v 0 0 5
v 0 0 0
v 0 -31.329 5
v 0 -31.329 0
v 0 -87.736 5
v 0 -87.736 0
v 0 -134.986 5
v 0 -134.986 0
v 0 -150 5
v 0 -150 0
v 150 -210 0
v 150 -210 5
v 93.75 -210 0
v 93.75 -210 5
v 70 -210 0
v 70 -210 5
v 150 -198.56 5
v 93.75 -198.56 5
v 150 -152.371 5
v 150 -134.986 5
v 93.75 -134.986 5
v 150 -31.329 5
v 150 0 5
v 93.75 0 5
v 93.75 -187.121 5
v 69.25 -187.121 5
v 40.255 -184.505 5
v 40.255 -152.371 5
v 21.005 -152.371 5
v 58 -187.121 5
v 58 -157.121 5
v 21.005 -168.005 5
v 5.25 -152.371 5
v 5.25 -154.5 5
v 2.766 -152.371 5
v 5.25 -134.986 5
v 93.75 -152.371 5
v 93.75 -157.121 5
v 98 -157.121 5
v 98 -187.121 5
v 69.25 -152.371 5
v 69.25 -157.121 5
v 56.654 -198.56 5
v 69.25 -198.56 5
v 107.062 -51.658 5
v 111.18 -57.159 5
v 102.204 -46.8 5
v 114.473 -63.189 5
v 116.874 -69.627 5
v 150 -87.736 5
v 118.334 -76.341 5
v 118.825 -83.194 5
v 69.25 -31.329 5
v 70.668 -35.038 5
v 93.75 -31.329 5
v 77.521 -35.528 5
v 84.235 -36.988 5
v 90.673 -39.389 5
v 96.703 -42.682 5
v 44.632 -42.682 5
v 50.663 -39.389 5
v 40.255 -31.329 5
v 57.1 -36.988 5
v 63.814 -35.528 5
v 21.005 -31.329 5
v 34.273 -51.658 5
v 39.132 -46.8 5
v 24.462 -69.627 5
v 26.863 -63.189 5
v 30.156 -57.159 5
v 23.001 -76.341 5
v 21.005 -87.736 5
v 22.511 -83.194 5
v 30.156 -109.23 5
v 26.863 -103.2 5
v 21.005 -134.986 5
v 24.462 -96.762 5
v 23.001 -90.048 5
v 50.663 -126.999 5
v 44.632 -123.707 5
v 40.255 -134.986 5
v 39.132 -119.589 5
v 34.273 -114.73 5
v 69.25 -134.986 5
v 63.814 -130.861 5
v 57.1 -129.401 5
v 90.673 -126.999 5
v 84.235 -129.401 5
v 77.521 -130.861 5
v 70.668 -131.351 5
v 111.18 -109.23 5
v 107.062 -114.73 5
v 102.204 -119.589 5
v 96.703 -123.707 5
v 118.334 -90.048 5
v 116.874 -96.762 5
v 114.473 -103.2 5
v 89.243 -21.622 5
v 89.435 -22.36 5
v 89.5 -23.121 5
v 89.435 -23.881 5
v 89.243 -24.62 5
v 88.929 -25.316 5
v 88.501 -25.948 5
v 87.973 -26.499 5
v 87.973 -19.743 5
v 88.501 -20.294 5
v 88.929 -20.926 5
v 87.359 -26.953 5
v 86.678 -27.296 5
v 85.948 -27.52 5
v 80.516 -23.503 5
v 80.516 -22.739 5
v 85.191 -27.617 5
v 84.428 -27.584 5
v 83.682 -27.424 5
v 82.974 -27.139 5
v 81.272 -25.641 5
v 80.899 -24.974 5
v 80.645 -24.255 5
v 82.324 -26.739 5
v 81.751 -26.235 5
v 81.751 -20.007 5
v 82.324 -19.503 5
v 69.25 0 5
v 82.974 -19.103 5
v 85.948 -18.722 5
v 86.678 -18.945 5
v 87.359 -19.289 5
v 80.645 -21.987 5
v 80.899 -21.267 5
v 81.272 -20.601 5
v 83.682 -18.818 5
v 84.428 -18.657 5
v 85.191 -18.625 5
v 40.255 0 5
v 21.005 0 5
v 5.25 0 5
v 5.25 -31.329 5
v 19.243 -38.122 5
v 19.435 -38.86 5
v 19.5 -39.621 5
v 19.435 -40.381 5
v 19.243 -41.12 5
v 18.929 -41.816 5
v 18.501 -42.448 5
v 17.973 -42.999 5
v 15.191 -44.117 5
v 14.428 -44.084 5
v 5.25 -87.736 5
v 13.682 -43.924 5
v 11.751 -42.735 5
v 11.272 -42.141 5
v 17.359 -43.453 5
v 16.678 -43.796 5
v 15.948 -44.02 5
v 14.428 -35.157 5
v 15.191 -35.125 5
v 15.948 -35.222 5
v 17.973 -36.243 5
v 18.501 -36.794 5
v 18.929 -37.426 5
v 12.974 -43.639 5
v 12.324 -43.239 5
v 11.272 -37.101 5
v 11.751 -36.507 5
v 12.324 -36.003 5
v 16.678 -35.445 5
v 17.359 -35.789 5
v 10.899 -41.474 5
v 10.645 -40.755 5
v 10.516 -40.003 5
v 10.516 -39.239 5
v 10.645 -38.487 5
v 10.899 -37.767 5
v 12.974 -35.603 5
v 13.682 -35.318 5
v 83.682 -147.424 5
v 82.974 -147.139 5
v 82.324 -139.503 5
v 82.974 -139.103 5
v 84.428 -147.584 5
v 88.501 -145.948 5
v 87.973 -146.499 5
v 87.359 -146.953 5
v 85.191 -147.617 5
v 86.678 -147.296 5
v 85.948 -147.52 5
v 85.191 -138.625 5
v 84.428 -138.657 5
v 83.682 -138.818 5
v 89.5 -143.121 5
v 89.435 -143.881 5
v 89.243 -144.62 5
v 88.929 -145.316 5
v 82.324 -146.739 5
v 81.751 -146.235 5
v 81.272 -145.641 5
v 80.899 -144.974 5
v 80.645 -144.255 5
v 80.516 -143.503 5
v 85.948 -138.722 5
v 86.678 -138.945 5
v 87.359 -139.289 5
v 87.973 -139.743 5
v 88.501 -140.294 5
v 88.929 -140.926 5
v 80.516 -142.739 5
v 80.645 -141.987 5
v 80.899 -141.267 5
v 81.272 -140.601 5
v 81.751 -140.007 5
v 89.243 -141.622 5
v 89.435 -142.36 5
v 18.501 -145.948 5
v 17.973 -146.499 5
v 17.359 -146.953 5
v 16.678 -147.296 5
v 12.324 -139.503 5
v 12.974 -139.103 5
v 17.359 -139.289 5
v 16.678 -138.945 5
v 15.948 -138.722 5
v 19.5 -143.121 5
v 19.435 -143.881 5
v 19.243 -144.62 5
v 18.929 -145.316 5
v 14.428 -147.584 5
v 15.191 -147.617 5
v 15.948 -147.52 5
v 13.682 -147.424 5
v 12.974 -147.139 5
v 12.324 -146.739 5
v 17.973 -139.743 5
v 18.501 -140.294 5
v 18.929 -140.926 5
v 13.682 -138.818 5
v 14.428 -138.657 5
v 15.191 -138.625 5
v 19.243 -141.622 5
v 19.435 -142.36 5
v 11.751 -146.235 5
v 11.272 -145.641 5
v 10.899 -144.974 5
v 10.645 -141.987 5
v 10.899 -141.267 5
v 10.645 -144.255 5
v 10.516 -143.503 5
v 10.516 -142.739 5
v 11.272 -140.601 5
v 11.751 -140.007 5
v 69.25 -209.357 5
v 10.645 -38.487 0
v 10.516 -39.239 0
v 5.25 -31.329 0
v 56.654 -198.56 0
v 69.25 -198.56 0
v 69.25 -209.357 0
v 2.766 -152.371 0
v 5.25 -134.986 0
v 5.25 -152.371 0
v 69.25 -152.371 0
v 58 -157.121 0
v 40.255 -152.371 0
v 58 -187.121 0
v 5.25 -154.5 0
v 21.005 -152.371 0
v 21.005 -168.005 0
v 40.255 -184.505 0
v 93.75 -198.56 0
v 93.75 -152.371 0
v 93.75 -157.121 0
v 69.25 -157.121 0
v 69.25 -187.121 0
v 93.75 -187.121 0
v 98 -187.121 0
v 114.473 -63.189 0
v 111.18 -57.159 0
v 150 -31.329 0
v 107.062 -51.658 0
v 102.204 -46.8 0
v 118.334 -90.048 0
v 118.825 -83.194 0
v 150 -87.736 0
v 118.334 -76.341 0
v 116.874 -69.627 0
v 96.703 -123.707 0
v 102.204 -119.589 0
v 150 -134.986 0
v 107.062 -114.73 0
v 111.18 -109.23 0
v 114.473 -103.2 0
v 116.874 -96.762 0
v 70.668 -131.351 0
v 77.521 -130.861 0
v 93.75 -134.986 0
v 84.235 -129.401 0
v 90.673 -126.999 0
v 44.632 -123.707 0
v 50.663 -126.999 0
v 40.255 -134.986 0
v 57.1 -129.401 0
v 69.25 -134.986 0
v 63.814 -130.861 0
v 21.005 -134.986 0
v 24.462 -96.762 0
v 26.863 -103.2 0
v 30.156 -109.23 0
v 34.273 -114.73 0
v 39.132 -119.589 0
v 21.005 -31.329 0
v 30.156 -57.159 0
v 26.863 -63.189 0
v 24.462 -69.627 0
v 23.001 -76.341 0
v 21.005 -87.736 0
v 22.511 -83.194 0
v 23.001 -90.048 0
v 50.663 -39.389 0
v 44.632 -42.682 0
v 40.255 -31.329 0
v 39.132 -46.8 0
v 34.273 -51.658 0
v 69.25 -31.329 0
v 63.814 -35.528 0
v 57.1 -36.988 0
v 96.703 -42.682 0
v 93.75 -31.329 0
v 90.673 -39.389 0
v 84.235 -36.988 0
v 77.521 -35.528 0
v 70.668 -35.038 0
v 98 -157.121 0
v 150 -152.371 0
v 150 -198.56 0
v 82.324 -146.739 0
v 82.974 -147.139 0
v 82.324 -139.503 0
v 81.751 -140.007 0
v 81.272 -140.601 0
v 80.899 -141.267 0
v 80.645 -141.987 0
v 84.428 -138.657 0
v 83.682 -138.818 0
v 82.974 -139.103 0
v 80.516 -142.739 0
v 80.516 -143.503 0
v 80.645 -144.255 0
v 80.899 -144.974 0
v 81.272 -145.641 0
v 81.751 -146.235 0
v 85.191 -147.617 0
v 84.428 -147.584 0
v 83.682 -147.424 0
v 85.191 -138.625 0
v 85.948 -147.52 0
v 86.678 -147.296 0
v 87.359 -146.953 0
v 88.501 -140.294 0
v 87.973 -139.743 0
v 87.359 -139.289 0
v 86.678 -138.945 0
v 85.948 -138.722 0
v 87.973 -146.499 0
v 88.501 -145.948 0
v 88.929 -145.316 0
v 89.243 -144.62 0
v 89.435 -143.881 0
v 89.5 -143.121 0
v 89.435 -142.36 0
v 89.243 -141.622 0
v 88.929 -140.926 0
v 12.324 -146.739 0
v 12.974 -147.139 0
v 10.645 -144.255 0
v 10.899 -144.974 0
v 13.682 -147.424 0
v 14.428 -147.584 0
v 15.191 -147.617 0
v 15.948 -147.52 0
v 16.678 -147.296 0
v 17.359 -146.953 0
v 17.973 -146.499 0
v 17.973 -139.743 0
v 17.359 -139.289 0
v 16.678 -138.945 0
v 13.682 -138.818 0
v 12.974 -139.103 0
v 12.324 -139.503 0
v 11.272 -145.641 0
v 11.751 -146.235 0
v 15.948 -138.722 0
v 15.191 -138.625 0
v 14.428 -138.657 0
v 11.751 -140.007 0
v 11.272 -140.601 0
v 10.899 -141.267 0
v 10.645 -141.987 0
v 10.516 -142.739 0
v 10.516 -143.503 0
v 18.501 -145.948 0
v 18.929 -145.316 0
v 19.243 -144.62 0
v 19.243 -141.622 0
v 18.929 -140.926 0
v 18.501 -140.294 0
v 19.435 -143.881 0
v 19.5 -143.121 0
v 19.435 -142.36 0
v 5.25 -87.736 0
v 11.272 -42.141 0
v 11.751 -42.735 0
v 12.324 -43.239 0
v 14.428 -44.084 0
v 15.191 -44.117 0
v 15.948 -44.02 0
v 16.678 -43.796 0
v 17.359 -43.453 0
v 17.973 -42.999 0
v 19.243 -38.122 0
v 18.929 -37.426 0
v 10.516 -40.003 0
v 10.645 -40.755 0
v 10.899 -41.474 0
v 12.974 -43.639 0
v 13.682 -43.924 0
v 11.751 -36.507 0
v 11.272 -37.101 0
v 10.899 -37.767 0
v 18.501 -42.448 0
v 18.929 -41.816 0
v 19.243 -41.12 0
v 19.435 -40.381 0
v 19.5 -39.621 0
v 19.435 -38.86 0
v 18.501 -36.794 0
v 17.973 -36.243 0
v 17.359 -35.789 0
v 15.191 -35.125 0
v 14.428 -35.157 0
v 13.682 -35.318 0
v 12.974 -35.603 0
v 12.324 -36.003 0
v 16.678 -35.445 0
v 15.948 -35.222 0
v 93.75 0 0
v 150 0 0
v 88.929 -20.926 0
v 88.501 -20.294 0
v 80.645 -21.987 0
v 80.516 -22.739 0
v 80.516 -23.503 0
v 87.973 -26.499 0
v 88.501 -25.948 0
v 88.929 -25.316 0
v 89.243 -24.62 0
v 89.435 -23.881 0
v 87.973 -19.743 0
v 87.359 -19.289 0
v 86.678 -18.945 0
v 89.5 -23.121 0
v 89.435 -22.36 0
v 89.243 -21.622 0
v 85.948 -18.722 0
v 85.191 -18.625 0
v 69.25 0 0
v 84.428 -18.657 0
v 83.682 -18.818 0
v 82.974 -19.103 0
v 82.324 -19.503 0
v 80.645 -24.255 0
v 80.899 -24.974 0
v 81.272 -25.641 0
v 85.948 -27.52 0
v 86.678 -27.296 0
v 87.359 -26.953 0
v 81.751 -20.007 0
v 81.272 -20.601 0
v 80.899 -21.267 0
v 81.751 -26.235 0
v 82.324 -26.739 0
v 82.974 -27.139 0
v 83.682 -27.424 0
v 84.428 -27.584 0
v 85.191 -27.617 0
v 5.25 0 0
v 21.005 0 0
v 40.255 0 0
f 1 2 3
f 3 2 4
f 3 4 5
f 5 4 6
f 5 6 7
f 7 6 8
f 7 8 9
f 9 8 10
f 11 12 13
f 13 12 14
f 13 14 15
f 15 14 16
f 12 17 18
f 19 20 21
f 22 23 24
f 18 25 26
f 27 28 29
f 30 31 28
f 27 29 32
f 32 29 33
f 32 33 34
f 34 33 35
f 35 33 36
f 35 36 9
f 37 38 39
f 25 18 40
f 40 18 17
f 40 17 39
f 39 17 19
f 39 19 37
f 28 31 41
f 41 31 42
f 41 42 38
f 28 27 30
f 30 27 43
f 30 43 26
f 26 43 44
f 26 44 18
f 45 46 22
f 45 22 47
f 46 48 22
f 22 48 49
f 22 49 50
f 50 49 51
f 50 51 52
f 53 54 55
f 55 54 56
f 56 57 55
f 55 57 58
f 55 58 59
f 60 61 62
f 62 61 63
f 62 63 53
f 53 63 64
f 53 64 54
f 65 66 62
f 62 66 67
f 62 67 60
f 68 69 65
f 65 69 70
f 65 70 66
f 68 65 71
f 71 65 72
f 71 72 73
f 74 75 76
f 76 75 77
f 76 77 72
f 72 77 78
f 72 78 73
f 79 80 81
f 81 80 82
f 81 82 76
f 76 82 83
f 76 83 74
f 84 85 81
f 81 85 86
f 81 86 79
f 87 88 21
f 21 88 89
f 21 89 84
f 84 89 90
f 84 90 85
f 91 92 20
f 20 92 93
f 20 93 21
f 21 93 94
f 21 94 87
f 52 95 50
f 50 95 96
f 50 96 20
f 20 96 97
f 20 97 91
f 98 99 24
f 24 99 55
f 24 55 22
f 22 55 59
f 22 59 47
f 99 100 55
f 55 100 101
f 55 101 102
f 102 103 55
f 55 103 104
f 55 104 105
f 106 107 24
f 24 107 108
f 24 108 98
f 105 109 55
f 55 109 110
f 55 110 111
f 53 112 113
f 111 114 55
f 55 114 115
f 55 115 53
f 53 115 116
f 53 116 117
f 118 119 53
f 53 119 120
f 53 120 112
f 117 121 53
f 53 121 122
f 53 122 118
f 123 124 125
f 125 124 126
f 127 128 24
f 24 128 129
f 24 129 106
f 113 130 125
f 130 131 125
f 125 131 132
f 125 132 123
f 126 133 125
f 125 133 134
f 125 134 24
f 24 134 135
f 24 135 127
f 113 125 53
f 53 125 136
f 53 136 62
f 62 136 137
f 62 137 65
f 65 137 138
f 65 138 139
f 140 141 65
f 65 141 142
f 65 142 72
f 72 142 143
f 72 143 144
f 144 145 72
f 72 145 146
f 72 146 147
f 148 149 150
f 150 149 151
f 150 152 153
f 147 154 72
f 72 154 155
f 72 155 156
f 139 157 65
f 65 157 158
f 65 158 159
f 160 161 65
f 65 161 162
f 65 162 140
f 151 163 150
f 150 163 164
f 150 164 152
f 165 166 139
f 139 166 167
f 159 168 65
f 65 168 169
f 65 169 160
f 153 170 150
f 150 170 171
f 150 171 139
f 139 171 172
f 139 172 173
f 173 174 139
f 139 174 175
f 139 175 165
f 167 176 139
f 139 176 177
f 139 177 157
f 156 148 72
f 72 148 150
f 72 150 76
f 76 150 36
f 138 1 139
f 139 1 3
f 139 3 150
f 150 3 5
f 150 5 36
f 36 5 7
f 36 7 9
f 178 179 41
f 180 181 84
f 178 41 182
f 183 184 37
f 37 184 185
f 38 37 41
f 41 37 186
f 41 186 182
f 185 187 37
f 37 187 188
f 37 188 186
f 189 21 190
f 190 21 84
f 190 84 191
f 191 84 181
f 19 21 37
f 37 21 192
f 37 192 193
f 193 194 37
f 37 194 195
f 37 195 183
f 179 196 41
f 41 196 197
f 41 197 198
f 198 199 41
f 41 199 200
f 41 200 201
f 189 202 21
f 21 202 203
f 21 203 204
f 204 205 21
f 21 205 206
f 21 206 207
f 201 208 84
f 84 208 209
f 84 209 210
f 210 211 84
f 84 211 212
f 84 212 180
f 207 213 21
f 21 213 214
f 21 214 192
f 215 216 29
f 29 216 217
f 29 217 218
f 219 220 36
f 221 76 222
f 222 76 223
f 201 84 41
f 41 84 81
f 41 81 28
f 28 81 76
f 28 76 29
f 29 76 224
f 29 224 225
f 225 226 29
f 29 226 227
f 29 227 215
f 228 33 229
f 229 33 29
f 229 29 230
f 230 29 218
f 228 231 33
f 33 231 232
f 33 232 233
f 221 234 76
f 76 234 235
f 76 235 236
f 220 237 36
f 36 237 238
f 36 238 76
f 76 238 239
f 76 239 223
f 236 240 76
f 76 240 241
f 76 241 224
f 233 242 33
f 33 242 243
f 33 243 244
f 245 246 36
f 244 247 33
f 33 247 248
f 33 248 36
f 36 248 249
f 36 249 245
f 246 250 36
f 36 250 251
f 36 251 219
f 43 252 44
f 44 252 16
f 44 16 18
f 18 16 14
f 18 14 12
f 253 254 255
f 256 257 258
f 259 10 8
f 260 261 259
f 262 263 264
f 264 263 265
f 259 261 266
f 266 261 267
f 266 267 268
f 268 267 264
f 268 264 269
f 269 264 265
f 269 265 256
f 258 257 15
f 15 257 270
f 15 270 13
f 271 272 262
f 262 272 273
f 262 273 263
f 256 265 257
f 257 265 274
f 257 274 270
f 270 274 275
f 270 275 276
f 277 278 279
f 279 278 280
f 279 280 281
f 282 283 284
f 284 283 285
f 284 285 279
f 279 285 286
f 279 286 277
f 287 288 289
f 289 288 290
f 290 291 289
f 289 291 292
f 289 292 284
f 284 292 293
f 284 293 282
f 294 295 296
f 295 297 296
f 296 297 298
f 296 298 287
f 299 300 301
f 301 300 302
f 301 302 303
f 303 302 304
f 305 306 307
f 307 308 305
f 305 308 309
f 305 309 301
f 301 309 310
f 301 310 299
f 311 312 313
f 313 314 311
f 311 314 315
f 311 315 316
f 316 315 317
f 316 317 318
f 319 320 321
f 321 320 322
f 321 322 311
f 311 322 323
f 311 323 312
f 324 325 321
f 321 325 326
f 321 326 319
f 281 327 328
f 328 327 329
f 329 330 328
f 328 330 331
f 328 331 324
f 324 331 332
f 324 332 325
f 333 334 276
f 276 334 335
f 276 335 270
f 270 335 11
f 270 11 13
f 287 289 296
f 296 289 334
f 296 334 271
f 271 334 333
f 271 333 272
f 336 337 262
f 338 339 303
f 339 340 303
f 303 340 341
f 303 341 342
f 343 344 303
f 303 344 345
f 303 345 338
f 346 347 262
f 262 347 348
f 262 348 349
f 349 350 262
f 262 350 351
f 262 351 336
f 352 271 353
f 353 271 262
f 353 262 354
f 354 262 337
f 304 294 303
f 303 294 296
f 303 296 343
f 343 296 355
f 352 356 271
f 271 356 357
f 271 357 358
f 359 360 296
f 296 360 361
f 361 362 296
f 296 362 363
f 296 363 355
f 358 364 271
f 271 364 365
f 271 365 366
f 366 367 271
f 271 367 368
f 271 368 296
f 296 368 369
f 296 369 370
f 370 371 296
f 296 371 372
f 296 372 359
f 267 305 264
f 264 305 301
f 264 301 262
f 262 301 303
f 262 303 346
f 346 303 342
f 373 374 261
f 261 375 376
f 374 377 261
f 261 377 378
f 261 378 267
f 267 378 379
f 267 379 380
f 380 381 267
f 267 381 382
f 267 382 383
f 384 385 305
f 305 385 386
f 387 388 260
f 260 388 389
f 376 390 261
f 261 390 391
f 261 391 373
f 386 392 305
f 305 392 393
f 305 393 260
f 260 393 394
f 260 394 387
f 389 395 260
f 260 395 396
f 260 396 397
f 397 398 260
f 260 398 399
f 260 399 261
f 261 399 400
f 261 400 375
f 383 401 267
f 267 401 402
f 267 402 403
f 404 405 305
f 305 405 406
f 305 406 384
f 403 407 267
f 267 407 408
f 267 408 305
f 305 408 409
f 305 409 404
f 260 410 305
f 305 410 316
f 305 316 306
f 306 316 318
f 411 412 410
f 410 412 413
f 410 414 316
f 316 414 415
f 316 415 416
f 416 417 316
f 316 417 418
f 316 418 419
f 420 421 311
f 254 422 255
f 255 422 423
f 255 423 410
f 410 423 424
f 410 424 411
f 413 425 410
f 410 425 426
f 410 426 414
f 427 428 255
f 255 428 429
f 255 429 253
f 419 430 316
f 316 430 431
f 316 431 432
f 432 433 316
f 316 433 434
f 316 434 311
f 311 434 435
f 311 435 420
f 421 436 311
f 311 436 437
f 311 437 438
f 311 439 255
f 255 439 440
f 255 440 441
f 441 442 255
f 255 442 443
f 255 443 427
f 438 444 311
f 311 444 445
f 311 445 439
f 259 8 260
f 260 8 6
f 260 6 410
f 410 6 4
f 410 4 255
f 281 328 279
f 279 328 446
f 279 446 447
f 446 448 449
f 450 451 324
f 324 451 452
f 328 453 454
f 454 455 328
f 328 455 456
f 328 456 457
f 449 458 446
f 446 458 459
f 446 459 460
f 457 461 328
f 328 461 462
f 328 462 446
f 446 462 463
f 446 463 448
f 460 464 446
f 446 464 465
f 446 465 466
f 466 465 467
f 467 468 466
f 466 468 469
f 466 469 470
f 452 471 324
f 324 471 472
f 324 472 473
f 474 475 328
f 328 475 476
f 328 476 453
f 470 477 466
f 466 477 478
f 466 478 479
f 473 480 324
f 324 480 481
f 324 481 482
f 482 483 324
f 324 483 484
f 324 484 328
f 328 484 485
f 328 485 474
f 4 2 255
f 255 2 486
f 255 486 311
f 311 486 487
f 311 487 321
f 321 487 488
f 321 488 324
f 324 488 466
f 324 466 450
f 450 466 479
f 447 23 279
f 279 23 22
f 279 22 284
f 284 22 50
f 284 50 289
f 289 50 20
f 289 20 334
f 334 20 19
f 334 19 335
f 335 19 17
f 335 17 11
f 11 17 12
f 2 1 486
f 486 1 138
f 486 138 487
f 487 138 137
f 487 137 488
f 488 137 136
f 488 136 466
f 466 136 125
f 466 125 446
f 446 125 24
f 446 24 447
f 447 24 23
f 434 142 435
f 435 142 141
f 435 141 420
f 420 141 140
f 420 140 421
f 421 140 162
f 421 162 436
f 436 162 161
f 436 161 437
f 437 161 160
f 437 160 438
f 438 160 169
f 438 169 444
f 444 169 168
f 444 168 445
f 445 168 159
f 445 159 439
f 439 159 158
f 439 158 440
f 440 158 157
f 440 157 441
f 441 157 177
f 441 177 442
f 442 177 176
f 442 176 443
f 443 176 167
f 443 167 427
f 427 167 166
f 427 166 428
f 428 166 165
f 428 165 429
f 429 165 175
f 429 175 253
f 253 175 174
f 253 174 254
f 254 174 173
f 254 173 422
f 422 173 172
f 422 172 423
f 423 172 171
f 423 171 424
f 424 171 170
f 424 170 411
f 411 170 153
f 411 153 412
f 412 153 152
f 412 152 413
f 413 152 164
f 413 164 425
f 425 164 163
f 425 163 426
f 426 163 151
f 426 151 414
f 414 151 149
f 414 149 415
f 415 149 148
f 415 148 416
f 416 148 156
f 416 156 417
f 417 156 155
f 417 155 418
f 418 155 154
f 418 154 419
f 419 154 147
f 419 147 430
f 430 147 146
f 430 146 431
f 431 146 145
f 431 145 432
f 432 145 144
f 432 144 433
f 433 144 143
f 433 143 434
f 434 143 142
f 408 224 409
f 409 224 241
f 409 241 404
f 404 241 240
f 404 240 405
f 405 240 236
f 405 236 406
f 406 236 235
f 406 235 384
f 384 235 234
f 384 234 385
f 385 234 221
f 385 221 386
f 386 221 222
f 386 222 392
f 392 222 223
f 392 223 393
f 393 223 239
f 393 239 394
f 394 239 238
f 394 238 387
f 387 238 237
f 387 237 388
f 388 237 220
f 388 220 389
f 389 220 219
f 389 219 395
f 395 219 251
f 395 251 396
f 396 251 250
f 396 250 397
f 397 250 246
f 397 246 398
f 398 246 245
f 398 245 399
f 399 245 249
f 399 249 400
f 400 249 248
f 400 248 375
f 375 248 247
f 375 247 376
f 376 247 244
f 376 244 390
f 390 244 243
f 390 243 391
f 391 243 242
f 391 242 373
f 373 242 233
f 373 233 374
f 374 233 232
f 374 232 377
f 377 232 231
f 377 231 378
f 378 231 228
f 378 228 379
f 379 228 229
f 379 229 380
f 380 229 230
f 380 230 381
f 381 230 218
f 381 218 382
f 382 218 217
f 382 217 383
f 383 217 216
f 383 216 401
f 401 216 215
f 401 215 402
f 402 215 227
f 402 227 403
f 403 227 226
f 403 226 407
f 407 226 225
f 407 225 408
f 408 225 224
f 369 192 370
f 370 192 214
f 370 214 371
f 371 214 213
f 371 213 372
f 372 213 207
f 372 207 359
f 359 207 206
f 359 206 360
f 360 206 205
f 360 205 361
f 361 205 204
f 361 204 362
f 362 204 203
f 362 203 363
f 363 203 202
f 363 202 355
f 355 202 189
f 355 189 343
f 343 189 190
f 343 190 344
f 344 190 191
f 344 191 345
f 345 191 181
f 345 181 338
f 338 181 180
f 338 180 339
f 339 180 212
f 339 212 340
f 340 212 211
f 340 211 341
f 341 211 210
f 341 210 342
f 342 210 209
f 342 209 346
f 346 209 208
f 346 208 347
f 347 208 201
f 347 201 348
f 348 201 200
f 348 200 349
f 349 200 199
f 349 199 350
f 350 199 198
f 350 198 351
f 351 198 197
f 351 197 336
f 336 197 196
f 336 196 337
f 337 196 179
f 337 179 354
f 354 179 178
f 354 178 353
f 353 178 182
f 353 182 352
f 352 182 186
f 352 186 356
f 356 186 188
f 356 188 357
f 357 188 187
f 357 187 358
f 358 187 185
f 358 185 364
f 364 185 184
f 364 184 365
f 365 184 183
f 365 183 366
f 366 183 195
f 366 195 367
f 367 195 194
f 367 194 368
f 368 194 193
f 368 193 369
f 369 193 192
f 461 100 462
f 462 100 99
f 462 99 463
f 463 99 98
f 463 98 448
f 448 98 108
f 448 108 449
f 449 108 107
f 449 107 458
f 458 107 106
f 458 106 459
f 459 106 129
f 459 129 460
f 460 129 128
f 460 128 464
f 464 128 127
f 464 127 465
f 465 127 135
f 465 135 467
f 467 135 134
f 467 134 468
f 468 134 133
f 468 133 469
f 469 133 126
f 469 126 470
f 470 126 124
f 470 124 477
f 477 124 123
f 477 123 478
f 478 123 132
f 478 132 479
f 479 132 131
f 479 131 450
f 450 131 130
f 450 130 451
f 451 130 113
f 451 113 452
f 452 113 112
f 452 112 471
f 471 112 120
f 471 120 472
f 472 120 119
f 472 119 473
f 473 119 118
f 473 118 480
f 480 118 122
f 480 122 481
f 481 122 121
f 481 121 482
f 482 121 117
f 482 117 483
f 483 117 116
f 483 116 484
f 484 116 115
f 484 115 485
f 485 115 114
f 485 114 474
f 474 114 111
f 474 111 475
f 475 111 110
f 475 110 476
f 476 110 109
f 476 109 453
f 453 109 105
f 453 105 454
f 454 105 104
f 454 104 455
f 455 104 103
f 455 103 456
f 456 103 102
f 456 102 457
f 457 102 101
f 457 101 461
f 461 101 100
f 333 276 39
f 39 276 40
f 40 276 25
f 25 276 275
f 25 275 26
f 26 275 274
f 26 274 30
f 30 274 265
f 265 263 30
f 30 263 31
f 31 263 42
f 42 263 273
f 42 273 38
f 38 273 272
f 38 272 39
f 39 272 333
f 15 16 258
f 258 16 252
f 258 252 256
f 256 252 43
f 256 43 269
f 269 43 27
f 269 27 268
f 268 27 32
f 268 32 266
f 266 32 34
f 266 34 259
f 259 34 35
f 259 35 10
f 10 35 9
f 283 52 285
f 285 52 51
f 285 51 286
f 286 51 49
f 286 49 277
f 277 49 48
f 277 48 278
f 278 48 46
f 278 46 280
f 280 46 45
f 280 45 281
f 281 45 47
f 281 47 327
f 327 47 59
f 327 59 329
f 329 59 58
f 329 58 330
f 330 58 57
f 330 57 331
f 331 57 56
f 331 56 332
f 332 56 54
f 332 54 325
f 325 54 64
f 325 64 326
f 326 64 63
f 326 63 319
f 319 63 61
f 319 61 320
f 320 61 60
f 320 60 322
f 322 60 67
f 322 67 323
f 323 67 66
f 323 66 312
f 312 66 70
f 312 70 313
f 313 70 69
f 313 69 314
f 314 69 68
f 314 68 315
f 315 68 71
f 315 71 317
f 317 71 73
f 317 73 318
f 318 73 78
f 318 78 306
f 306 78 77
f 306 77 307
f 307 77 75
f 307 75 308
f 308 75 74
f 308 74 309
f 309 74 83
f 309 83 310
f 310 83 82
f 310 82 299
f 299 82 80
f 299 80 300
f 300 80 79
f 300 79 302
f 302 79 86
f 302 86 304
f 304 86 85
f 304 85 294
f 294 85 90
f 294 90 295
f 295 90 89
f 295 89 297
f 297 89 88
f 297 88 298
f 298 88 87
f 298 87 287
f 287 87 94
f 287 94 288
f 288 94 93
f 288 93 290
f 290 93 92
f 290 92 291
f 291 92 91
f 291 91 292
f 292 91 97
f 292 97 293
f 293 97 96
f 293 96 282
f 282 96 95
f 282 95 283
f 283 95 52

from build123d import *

# Parameters (mm, degrees)
ESQUISSE1_W             = 150
ESQUISSE1_H             = 210
BOSS_EXTRU_1_DEPTH      = 5
D_GAGEMENT_M81_D        = 9
ESQUISSE5_W             = 40
ESQUISSE5_H             = 30
ENL_V_MAT_EXTRU_1_DEPTH = 5
ENL_V_MAT_EXTRU_2_DEPTH = 5
ESQUISSE7_R             = 48.156846138
ENL_V_MAT_EXTRU_3_DEPTH = 5


with BuildPart() as part:
    # Esquisse1 → Boss.-Extru.1 (new body)
    with BuildSketch(Plane.XY):
        with Locations((75, -105)):
            Rectangle(ESQUISSE1_W, ESQUISSE1_H)
    extrude(amount=BOSS_EXTRU_1_DEPTH)

    # Dégagement M81 (through all)
    with Locations(Plane.XY.offset(5)):
        with Locations((85, -23.12089623), (85, -143.12089623), (15, -143.12089623), (15, -39.62089623)):
            Hole(D_GAGEMENT_M81_D / 2)

    # Esquisse5 → Enlèv. mat.-Extru.1 (cut)
    with BuildSketch(Plane.XY.offset(5)):
        with Locations((78, -172.12089623)):
            Rectangle(ESQUISSE5_W, ESQUISSE5_H)
    extrude(amount=-ENL_V_MAT_EXTRU_1_DEPTH, mode=Mode.SUBTRACT)

    # Esquisse6 → Enlèv. mat.-Extru.2 (cut)
    with BuildSketch(Plane.XY.offset(5)):
        Polygon((0, -210), (0, -150), (70, -210), align=None)
    extrude(amount=-ENL_V_MAT_EXTRU_2_DEPTH, mode=Mode.SUBTRACT)

    # Esquisse7 → Enlèv. mat.-Extru.3 (cut)
    with BuildSketch(Plane.XY.offset(5)):
        with Locations((70.667772287, -83.194453846)):
            Circle(ESQUISSE7_R)
    extrude(amount=-ENL_V_MAT_EXTRU_3_DEPTH, mode=Mode.SUBTRACT)


solid = part.part
